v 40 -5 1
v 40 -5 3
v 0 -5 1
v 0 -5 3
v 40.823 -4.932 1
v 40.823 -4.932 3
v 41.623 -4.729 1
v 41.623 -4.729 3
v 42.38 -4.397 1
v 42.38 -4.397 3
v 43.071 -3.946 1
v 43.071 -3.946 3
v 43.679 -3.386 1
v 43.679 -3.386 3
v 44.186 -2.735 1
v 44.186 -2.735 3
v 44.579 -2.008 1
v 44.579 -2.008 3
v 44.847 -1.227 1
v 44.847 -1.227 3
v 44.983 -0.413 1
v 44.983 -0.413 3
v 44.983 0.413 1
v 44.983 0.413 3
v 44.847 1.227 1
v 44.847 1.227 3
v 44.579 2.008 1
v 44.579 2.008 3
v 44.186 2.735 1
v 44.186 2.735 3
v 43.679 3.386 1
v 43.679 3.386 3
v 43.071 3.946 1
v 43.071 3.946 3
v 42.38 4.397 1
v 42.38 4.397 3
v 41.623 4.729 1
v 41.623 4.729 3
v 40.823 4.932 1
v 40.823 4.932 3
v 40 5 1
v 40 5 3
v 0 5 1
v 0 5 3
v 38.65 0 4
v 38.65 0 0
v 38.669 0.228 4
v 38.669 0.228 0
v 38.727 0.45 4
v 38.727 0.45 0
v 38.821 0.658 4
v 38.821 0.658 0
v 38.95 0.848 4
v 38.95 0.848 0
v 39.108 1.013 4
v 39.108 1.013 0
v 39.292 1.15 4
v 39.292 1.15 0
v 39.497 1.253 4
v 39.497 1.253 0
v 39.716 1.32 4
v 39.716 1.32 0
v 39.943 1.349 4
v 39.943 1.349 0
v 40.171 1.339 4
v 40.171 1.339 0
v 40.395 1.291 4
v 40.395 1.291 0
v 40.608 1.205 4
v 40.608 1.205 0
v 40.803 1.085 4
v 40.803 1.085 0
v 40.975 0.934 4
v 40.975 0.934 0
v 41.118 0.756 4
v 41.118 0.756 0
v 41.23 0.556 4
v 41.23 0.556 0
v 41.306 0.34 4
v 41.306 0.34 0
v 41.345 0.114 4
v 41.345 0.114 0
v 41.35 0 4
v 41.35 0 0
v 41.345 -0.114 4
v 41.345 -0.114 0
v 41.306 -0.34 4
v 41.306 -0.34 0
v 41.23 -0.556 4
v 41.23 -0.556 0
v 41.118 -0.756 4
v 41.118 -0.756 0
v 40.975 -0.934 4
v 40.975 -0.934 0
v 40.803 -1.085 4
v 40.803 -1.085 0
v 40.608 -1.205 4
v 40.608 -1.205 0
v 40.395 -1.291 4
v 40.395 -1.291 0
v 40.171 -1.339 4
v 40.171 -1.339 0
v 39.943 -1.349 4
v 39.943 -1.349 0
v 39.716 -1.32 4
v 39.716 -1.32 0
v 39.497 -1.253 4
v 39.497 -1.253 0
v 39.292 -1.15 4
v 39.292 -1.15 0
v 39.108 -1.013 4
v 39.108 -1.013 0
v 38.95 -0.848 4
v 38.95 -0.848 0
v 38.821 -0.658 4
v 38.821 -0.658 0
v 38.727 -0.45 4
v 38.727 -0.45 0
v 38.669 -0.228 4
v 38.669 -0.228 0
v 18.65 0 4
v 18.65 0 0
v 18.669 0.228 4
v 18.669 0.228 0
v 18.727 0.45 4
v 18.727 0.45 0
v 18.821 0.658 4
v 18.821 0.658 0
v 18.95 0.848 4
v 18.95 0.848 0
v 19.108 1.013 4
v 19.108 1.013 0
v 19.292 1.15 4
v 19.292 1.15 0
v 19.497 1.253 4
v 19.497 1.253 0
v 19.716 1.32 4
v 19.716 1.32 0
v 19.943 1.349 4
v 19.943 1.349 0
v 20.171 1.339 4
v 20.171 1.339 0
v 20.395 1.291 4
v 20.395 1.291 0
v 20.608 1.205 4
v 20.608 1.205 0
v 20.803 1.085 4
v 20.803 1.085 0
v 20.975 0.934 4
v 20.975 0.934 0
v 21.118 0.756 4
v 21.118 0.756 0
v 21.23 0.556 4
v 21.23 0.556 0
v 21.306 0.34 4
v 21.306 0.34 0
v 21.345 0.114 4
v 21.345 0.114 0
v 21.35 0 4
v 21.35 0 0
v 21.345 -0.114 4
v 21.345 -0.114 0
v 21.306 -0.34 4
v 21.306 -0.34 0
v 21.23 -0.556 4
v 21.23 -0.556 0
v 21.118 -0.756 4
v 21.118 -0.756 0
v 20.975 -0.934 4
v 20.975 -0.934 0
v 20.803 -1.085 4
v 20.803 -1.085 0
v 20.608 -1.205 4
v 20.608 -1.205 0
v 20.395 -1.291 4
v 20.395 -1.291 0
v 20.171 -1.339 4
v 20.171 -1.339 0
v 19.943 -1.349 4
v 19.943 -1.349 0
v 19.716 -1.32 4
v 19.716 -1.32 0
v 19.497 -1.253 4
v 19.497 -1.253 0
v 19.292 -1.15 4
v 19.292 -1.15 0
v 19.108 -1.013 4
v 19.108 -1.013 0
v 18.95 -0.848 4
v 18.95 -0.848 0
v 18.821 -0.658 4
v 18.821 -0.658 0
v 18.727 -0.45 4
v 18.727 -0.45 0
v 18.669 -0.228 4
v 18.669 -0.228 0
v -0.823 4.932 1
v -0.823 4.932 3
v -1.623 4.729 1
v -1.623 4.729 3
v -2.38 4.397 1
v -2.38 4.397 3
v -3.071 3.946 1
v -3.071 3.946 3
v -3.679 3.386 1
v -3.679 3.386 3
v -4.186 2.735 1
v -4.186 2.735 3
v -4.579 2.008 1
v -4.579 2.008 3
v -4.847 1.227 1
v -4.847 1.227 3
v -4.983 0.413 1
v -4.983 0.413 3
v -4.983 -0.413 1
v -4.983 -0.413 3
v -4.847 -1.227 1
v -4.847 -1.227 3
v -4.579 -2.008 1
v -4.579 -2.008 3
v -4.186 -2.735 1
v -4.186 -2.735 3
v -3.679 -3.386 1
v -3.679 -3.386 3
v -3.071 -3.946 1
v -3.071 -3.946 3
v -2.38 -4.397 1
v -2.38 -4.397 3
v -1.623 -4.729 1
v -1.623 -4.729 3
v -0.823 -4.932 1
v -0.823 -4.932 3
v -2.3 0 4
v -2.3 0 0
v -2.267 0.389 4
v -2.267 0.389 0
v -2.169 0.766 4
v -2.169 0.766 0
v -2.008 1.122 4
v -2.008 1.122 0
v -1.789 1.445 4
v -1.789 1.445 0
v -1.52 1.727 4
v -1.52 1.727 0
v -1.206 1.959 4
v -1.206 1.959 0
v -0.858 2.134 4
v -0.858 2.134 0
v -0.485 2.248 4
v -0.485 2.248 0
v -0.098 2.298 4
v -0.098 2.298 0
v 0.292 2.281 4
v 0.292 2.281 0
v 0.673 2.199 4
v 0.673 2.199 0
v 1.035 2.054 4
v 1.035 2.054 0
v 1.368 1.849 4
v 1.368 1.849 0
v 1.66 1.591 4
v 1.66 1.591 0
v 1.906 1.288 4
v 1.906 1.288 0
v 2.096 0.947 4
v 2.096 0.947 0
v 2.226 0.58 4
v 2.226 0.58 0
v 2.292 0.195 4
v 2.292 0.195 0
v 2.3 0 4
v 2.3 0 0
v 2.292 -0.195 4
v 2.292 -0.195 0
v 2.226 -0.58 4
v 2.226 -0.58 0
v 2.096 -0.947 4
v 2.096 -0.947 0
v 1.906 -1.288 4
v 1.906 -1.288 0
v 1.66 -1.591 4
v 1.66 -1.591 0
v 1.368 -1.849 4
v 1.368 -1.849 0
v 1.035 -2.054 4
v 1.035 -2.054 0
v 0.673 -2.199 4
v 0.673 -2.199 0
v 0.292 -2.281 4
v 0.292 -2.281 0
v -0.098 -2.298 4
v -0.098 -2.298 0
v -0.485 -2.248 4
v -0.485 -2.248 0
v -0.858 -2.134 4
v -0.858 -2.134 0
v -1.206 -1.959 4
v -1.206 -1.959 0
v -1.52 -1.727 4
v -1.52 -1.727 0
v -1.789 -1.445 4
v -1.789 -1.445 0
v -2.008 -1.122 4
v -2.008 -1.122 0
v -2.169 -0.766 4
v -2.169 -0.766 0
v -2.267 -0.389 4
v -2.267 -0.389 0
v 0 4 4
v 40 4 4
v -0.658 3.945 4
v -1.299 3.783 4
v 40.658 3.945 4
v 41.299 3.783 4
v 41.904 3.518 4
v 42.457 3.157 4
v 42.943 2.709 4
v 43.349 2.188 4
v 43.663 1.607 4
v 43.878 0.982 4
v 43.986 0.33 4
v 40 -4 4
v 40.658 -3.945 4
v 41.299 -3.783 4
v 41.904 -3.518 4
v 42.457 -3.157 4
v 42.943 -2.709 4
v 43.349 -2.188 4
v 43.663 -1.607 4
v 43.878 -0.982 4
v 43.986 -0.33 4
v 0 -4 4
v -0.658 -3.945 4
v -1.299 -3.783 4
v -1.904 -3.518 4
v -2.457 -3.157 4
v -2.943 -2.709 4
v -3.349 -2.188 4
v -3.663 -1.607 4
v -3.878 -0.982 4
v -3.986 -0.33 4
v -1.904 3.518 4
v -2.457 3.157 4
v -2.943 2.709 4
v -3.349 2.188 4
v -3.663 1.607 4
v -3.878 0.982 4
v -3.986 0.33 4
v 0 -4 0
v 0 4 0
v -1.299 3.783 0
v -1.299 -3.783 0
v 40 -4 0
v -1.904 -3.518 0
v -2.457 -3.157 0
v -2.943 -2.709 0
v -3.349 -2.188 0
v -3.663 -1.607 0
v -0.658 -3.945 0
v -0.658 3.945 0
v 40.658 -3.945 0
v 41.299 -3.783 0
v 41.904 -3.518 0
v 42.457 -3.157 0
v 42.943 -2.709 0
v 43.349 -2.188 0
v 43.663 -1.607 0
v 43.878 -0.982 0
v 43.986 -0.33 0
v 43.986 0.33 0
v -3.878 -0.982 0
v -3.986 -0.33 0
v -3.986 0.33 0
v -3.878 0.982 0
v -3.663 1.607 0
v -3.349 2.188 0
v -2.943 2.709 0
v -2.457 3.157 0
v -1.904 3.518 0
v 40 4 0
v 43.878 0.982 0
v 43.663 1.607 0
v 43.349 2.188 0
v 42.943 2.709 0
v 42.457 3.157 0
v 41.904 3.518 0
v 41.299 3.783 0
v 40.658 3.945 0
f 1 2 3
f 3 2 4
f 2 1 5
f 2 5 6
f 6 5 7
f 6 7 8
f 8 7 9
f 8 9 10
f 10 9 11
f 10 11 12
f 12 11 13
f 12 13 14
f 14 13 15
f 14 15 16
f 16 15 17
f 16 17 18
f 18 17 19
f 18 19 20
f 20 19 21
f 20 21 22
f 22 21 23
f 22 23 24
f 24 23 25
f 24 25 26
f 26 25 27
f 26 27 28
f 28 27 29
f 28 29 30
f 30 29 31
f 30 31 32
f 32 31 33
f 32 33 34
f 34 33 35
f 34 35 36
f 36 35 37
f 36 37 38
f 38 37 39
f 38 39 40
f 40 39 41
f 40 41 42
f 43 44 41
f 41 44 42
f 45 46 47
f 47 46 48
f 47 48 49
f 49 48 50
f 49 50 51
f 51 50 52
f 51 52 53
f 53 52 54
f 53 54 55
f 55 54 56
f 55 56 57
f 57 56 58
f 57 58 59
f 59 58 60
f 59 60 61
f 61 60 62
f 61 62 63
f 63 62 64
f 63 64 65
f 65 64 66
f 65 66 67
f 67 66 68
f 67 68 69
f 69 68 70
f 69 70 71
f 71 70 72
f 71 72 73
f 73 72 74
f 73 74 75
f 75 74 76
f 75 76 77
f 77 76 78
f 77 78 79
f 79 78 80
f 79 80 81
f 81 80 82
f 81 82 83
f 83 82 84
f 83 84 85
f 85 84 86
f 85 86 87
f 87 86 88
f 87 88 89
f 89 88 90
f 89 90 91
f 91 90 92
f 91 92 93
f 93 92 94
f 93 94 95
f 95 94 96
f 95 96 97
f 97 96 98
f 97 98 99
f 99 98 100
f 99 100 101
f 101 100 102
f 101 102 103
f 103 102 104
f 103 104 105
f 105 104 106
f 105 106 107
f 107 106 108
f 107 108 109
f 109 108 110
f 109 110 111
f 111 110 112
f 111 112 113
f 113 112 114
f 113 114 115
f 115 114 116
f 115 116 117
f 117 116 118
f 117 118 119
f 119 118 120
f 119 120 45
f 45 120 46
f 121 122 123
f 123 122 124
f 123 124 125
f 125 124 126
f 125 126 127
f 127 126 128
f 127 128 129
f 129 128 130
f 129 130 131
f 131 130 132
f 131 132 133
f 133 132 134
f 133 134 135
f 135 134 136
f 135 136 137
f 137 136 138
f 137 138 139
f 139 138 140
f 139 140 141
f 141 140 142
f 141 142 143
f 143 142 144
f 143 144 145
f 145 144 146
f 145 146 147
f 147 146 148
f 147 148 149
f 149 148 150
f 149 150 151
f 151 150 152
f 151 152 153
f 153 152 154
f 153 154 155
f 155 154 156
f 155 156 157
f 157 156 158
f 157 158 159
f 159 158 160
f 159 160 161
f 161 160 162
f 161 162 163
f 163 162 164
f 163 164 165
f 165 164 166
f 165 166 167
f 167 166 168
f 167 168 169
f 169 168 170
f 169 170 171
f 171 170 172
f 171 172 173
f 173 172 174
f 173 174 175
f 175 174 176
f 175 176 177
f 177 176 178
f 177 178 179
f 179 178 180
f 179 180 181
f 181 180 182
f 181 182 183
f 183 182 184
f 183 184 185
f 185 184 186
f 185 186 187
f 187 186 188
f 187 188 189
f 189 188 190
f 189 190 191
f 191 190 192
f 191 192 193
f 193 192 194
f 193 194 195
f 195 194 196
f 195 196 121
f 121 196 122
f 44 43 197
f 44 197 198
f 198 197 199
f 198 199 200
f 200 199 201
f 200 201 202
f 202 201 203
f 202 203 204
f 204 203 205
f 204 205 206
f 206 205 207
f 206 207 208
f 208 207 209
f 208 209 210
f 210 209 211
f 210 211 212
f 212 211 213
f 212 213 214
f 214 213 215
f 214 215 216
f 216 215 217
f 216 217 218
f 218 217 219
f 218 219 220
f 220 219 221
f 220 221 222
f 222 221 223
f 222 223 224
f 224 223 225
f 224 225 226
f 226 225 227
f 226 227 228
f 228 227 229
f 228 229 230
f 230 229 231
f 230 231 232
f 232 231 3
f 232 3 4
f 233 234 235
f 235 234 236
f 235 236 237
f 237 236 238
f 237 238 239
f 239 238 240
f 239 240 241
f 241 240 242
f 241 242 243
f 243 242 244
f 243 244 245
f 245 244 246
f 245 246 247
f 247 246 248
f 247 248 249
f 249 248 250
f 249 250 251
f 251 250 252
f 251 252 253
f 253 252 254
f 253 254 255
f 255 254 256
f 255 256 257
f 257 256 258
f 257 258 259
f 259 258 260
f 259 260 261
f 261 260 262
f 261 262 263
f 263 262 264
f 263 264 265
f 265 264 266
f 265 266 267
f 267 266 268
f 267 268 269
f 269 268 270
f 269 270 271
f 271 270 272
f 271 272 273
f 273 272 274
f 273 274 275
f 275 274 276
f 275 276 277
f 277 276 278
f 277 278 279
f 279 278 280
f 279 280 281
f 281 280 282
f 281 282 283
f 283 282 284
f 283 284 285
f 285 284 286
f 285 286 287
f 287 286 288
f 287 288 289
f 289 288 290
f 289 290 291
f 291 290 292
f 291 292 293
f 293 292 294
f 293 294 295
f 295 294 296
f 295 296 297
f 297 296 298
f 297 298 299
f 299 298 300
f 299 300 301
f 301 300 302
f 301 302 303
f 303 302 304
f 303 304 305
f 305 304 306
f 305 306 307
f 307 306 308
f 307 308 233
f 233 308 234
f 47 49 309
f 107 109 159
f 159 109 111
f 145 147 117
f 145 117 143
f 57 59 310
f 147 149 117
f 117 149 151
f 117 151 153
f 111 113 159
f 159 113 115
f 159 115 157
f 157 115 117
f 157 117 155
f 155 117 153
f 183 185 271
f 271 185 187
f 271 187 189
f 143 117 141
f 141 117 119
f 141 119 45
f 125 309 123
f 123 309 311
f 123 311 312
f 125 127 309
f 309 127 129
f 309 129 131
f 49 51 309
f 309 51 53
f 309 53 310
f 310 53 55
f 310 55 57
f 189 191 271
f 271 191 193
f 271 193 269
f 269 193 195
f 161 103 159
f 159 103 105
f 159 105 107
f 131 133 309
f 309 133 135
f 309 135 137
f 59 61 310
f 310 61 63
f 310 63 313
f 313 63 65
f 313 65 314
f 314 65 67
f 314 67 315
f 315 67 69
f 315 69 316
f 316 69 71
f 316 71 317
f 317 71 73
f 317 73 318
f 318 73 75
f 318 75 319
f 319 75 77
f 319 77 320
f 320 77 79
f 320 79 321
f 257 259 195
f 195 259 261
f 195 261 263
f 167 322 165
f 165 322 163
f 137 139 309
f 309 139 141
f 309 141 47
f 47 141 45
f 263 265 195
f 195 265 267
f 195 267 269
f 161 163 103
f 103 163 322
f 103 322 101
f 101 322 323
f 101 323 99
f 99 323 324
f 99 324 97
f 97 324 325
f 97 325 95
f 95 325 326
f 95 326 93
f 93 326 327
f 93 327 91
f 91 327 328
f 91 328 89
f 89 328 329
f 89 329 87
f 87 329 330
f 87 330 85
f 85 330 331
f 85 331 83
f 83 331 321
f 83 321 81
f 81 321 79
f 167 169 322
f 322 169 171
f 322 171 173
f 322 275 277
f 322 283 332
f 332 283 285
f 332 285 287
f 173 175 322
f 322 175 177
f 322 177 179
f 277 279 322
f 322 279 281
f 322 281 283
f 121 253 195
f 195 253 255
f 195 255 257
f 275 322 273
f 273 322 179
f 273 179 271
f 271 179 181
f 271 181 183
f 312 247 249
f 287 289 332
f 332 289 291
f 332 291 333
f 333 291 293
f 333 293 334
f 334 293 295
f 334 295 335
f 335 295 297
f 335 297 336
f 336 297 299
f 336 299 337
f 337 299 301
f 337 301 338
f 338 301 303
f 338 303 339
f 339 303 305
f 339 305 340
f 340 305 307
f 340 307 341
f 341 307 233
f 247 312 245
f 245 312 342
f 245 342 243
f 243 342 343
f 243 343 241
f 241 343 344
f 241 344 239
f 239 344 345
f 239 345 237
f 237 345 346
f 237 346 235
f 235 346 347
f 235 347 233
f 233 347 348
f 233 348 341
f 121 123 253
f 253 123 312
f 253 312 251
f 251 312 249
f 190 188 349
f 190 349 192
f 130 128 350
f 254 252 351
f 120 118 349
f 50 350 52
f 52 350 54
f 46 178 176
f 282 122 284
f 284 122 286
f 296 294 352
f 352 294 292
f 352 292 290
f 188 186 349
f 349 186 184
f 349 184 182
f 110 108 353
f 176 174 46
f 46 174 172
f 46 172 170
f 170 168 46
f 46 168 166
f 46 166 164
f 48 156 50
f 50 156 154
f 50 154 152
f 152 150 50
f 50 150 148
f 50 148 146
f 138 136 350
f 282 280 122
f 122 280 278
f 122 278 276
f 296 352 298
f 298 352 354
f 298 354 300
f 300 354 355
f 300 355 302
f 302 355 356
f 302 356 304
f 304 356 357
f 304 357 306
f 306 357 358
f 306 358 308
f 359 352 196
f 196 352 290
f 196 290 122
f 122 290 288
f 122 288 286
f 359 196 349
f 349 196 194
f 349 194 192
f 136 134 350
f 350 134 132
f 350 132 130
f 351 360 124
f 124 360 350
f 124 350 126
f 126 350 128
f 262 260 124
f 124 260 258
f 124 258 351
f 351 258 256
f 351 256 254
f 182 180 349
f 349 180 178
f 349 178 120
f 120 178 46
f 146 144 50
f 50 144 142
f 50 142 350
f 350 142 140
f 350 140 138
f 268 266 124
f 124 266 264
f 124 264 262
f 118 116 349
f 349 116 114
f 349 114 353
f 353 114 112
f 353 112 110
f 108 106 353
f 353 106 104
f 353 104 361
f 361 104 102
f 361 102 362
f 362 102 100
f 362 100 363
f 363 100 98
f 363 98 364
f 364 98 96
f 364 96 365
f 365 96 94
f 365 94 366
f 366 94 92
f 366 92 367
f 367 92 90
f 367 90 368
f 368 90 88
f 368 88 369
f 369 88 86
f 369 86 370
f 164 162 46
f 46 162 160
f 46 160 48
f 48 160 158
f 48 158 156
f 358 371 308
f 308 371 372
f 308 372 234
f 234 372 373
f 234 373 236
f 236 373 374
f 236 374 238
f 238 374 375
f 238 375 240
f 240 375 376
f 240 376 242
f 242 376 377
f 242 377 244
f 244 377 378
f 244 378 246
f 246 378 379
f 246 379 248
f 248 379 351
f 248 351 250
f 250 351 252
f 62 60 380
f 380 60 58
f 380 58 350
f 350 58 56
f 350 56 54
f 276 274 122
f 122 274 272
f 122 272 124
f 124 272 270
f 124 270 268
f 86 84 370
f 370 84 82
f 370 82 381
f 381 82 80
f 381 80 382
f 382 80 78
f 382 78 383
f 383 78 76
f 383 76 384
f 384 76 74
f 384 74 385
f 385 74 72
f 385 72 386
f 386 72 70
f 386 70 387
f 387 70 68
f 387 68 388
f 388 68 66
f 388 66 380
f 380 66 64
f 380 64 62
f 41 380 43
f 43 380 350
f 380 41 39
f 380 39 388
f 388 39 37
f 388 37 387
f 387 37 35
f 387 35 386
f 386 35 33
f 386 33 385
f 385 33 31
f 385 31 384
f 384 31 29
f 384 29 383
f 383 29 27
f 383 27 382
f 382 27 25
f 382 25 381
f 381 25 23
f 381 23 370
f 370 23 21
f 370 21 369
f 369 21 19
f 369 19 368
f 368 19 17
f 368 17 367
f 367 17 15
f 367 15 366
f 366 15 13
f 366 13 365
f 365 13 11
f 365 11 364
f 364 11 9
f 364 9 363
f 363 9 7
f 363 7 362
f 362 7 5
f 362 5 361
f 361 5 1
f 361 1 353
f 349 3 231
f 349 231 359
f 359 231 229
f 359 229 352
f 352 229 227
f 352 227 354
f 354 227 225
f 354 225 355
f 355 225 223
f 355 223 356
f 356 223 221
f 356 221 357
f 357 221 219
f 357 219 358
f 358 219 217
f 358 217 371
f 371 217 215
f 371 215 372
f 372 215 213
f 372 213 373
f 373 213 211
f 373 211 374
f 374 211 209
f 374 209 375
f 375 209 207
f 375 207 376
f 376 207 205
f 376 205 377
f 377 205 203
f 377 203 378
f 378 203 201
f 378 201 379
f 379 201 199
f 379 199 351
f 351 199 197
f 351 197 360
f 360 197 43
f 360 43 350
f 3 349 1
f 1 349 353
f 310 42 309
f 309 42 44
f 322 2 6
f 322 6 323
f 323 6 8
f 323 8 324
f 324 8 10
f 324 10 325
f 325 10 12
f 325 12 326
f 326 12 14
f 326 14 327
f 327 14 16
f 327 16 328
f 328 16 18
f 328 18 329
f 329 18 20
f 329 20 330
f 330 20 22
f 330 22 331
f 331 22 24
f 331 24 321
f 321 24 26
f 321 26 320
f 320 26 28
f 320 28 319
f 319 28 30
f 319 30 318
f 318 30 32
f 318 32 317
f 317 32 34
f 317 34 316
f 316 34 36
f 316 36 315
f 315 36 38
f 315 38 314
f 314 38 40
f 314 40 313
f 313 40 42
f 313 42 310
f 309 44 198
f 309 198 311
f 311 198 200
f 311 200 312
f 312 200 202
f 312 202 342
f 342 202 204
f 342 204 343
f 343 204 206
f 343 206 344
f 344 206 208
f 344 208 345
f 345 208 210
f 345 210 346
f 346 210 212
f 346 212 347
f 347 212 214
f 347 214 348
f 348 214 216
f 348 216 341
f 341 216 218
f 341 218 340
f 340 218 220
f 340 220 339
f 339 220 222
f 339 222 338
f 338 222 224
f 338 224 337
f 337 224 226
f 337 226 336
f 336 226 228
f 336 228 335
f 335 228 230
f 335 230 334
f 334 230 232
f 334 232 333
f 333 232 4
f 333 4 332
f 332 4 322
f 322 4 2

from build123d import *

# Parameters (mm, degrees)
SKETCH1_R           = 1.35
SKETCH1_R_2         = 2.3
BOSS_EXTRUDE1_DEPTH = 4
CHAMFER1_SIZE       = 1


with BuildPart() as part:
    # Sketch1 → Boss-Extrude1 (new body)
    with BuildSketch(Plane.XY):
        with BuildLine():
            Line((40, 5), (0, 5))
            ThreePointArc((0, 5), (-5, 0), (0, -5))
            Line((0, -5), (40, -5))
            ThreePointArc((40, -5), (45, 0), (40, 5))
        make_face()
        with Locations((20, 0)):
            Circle(SKETCH1_R, mode=Mode.SUBTRACT)
        Circle(SKETCH1_R_2, mode=Mode.SUBTRACT)
        with Locations((40, 0)):
            Circle(SKETCH1_R, mode=Mode.SUBTRACT)
    extrude(amount=BOSS_EXTRUDE1_DEPTH)

    # Chamfer1
    chamfer1_edges = [part.edges().sort_by_distance(p)[0] for p in [
        (-5, 0, 0),
        (20, 5, 0),
        (45, 0, 0),
        (20, -5, 0),
        (45, 0, 4),
        (20, 5, 4),
        (-5, 0, 4),
        (20, -5, 4),
    ]]
    chamfer(chamfer1_edges, length=CHAMFER1_SIZE)


solid = part.part
